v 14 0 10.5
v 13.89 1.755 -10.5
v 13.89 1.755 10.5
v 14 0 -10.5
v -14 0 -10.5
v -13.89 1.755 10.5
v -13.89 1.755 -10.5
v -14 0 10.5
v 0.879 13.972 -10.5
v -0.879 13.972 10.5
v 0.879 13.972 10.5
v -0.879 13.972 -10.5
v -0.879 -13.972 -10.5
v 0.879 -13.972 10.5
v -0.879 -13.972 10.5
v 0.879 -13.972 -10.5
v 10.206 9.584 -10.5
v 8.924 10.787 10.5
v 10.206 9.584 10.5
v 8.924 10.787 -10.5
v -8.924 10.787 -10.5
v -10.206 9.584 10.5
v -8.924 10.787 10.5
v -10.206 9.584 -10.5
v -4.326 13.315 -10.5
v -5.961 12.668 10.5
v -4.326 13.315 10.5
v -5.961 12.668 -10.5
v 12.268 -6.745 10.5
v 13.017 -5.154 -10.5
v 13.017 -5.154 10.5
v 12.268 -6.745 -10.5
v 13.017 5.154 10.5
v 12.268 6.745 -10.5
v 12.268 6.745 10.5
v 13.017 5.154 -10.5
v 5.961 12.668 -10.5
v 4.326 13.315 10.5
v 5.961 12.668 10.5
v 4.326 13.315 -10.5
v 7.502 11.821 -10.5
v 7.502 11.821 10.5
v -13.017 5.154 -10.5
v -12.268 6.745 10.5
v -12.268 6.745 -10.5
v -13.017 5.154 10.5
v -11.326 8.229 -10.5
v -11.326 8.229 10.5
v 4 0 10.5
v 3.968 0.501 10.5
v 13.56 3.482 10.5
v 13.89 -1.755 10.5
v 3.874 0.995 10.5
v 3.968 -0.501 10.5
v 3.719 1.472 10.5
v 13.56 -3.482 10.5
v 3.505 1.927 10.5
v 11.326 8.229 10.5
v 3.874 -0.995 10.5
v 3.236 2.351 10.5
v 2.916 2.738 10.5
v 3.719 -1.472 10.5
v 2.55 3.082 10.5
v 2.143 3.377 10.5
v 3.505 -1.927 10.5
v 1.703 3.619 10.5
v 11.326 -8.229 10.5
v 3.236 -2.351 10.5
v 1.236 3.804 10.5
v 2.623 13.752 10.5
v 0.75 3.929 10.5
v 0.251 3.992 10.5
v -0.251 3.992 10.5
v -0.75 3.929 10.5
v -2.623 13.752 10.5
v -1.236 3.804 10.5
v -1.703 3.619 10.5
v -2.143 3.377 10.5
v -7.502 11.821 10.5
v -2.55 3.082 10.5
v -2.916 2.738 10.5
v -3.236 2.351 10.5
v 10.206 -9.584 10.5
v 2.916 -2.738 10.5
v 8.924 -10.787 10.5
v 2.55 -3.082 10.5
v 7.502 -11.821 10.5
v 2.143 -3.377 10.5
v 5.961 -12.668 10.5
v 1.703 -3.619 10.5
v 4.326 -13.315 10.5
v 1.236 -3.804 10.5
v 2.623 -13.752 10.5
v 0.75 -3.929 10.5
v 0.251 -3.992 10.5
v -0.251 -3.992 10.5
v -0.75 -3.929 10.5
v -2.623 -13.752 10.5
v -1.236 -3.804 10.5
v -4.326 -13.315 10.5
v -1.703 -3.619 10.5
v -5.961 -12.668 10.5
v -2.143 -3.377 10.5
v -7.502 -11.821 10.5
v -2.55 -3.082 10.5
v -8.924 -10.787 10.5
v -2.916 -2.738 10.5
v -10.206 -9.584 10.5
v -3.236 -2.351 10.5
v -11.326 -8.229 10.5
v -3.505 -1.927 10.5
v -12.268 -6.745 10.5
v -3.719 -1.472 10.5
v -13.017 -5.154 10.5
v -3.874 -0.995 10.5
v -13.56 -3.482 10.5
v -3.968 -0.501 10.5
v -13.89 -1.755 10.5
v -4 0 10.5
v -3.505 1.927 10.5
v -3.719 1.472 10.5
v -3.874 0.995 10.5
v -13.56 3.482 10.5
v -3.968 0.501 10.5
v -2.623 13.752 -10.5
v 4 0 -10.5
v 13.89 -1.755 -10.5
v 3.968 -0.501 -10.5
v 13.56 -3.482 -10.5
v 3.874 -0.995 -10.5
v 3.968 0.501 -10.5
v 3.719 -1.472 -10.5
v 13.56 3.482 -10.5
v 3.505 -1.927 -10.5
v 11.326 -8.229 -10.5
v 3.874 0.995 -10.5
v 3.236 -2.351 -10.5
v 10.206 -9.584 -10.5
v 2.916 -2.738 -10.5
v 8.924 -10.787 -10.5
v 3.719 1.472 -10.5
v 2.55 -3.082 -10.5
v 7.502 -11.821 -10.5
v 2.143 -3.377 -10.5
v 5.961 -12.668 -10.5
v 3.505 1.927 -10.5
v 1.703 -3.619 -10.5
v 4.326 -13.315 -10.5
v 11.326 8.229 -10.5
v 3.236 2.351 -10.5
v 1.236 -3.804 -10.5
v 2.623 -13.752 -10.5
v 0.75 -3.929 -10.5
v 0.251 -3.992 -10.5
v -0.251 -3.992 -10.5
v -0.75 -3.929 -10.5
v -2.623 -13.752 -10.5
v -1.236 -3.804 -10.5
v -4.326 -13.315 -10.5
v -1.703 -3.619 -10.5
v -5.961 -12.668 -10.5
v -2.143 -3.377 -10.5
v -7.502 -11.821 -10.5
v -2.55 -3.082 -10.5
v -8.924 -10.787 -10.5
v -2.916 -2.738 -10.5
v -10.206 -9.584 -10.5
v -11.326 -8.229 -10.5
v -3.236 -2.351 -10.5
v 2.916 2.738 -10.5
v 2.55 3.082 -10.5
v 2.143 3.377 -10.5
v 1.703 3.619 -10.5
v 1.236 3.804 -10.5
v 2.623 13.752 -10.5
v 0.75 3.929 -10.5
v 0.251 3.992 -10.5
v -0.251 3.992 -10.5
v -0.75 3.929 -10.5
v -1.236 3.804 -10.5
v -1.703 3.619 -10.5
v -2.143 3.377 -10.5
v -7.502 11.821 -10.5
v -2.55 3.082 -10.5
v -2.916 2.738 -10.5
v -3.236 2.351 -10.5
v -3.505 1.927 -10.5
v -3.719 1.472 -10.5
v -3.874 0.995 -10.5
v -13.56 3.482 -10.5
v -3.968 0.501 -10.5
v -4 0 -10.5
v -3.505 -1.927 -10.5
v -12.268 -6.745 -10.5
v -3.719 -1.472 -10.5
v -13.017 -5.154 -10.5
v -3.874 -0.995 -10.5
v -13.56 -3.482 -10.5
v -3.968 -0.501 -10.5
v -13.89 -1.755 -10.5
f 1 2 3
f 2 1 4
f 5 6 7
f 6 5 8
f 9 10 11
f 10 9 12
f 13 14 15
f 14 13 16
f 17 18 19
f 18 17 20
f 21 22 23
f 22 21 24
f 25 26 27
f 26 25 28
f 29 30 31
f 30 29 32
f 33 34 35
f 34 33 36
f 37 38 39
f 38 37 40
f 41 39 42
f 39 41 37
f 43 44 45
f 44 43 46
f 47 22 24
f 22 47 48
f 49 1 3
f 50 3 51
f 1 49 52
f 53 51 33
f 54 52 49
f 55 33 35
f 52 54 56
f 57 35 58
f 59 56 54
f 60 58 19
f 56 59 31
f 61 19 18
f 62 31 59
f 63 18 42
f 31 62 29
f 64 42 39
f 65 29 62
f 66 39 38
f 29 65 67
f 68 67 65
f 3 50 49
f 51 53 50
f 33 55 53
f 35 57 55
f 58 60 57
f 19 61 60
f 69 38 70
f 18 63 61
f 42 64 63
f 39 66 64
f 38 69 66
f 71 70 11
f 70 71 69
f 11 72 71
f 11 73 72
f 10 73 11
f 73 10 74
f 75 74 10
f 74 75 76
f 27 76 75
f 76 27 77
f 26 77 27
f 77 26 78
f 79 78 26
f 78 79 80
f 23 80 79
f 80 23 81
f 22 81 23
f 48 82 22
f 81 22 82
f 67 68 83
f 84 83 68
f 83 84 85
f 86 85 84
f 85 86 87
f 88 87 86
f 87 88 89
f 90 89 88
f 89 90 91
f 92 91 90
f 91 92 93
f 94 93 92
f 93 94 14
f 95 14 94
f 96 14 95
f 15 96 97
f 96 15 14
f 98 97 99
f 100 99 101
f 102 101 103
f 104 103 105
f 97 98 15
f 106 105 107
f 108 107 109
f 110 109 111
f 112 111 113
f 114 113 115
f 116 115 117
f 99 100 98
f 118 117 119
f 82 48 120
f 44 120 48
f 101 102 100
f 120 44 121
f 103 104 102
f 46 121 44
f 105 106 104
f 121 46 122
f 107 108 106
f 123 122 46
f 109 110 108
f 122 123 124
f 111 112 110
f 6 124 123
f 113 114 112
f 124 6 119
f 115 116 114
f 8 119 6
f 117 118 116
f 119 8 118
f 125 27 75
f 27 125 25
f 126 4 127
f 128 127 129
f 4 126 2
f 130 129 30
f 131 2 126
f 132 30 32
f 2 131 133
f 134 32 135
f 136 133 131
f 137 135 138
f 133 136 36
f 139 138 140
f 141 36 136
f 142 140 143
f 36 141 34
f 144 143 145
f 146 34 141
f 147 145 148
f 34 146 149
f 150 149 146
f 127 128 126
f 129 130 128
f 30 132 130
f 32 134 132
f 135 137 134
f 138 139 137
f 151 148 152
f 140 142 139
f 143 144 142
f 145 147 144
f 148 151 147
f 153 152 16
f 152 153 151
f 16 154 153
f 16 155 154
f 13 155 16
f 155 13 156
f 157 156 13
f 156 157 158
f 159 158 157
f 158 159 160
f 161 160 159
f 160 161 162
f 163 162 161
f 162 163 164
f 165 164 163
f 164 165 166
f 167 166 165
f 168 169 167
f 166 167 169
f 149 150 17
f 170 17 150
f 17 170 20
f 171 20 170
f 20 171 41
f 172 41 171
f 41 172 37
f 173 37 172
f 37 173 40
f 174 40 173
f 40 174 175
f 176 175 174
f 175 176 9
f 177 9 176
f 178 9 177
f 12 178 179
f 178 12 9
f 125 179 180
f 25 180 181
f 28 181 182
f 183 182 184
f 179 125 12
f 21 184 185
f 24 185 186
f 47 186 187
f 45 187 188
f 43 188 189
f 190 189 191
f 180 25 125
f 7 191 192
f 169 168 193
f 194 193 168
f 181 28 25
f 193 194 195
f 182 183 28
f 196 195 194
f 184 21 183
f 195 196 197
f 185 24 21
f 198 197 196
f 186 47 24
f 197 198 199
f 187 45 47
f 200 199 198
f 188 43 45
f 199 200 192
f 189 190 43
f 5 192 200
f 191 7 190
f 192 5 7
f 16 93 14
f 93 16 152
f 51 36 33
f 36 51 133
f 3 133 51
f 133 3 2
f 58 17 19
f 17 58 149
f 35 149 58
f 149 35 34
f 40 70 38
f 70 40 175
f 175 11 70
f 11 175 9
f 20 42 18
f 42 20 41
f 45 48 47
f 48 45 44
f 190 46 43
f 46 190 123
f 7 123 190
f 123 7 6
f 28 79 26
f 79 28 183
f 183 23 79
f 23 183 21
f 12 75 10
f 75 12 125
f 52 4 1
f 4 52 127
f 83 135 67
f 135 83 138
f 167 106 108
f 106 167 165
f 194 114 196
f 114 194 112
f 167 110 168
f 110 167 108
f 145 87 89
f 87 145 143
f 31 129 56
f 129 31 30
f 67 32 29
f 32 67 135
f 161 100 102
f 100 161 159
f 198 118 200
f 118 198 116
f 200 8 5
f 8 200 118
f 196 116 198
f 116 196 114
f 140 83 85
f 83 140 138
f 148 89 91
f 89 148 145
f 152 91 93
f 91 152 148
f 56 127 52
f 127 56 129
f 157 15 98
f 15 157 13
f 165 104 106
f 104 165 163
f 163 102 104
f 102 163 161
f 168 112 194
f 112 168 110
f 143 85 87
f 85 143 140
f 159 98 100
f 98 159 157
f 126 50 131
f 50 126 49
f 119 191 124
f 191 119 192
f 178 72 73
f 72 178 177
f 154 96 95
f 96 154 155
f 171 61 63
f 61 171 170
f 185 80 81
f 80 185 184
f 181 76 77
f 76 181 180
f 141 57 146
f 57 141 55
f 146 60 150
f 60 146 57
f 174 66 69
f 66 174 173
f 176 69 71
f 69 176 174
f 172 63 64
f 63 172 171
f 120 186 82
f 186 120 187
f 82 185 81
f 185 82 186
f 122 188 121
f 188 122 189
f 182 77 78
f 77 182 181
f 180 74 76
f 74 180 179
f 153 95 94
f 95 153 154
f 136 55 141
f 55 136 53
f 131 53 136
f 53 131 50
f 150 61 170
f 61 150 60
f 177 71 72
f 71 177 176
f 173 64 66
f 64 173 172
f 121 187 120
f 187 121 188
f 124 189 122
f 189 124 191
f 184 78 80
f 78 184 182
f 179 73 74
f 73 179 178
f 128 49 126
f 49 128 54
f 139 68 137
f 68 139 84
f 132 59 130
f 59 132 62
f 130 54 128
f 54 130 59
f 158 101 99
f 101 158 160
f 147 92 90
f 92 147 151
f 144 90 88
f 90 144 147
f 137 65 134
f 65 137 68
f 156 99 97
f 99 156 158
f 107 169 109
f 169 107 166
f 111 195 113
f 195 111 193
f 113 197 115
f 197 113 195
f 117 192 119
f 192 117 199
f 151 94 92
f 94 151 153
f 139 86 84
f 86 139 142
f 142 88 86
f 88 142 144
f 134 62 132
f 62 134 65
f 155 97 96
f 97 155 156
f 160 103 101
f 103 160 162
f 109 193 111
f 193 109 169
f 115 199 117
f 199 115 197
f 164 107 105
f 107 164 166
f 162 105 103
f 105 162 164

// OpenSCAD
$fn = 50;


difference() {
	union() {
		translate(v = [0, 0, -10.5000000000]) {
			cylinder(h = 21, r = 14.0000000000);
		}
	}
	union() {
		translate(v = [0, 0, -100.0000000000]) {
			cylinder(h = 200, r = 4.0000000000);
		}
	}
}
